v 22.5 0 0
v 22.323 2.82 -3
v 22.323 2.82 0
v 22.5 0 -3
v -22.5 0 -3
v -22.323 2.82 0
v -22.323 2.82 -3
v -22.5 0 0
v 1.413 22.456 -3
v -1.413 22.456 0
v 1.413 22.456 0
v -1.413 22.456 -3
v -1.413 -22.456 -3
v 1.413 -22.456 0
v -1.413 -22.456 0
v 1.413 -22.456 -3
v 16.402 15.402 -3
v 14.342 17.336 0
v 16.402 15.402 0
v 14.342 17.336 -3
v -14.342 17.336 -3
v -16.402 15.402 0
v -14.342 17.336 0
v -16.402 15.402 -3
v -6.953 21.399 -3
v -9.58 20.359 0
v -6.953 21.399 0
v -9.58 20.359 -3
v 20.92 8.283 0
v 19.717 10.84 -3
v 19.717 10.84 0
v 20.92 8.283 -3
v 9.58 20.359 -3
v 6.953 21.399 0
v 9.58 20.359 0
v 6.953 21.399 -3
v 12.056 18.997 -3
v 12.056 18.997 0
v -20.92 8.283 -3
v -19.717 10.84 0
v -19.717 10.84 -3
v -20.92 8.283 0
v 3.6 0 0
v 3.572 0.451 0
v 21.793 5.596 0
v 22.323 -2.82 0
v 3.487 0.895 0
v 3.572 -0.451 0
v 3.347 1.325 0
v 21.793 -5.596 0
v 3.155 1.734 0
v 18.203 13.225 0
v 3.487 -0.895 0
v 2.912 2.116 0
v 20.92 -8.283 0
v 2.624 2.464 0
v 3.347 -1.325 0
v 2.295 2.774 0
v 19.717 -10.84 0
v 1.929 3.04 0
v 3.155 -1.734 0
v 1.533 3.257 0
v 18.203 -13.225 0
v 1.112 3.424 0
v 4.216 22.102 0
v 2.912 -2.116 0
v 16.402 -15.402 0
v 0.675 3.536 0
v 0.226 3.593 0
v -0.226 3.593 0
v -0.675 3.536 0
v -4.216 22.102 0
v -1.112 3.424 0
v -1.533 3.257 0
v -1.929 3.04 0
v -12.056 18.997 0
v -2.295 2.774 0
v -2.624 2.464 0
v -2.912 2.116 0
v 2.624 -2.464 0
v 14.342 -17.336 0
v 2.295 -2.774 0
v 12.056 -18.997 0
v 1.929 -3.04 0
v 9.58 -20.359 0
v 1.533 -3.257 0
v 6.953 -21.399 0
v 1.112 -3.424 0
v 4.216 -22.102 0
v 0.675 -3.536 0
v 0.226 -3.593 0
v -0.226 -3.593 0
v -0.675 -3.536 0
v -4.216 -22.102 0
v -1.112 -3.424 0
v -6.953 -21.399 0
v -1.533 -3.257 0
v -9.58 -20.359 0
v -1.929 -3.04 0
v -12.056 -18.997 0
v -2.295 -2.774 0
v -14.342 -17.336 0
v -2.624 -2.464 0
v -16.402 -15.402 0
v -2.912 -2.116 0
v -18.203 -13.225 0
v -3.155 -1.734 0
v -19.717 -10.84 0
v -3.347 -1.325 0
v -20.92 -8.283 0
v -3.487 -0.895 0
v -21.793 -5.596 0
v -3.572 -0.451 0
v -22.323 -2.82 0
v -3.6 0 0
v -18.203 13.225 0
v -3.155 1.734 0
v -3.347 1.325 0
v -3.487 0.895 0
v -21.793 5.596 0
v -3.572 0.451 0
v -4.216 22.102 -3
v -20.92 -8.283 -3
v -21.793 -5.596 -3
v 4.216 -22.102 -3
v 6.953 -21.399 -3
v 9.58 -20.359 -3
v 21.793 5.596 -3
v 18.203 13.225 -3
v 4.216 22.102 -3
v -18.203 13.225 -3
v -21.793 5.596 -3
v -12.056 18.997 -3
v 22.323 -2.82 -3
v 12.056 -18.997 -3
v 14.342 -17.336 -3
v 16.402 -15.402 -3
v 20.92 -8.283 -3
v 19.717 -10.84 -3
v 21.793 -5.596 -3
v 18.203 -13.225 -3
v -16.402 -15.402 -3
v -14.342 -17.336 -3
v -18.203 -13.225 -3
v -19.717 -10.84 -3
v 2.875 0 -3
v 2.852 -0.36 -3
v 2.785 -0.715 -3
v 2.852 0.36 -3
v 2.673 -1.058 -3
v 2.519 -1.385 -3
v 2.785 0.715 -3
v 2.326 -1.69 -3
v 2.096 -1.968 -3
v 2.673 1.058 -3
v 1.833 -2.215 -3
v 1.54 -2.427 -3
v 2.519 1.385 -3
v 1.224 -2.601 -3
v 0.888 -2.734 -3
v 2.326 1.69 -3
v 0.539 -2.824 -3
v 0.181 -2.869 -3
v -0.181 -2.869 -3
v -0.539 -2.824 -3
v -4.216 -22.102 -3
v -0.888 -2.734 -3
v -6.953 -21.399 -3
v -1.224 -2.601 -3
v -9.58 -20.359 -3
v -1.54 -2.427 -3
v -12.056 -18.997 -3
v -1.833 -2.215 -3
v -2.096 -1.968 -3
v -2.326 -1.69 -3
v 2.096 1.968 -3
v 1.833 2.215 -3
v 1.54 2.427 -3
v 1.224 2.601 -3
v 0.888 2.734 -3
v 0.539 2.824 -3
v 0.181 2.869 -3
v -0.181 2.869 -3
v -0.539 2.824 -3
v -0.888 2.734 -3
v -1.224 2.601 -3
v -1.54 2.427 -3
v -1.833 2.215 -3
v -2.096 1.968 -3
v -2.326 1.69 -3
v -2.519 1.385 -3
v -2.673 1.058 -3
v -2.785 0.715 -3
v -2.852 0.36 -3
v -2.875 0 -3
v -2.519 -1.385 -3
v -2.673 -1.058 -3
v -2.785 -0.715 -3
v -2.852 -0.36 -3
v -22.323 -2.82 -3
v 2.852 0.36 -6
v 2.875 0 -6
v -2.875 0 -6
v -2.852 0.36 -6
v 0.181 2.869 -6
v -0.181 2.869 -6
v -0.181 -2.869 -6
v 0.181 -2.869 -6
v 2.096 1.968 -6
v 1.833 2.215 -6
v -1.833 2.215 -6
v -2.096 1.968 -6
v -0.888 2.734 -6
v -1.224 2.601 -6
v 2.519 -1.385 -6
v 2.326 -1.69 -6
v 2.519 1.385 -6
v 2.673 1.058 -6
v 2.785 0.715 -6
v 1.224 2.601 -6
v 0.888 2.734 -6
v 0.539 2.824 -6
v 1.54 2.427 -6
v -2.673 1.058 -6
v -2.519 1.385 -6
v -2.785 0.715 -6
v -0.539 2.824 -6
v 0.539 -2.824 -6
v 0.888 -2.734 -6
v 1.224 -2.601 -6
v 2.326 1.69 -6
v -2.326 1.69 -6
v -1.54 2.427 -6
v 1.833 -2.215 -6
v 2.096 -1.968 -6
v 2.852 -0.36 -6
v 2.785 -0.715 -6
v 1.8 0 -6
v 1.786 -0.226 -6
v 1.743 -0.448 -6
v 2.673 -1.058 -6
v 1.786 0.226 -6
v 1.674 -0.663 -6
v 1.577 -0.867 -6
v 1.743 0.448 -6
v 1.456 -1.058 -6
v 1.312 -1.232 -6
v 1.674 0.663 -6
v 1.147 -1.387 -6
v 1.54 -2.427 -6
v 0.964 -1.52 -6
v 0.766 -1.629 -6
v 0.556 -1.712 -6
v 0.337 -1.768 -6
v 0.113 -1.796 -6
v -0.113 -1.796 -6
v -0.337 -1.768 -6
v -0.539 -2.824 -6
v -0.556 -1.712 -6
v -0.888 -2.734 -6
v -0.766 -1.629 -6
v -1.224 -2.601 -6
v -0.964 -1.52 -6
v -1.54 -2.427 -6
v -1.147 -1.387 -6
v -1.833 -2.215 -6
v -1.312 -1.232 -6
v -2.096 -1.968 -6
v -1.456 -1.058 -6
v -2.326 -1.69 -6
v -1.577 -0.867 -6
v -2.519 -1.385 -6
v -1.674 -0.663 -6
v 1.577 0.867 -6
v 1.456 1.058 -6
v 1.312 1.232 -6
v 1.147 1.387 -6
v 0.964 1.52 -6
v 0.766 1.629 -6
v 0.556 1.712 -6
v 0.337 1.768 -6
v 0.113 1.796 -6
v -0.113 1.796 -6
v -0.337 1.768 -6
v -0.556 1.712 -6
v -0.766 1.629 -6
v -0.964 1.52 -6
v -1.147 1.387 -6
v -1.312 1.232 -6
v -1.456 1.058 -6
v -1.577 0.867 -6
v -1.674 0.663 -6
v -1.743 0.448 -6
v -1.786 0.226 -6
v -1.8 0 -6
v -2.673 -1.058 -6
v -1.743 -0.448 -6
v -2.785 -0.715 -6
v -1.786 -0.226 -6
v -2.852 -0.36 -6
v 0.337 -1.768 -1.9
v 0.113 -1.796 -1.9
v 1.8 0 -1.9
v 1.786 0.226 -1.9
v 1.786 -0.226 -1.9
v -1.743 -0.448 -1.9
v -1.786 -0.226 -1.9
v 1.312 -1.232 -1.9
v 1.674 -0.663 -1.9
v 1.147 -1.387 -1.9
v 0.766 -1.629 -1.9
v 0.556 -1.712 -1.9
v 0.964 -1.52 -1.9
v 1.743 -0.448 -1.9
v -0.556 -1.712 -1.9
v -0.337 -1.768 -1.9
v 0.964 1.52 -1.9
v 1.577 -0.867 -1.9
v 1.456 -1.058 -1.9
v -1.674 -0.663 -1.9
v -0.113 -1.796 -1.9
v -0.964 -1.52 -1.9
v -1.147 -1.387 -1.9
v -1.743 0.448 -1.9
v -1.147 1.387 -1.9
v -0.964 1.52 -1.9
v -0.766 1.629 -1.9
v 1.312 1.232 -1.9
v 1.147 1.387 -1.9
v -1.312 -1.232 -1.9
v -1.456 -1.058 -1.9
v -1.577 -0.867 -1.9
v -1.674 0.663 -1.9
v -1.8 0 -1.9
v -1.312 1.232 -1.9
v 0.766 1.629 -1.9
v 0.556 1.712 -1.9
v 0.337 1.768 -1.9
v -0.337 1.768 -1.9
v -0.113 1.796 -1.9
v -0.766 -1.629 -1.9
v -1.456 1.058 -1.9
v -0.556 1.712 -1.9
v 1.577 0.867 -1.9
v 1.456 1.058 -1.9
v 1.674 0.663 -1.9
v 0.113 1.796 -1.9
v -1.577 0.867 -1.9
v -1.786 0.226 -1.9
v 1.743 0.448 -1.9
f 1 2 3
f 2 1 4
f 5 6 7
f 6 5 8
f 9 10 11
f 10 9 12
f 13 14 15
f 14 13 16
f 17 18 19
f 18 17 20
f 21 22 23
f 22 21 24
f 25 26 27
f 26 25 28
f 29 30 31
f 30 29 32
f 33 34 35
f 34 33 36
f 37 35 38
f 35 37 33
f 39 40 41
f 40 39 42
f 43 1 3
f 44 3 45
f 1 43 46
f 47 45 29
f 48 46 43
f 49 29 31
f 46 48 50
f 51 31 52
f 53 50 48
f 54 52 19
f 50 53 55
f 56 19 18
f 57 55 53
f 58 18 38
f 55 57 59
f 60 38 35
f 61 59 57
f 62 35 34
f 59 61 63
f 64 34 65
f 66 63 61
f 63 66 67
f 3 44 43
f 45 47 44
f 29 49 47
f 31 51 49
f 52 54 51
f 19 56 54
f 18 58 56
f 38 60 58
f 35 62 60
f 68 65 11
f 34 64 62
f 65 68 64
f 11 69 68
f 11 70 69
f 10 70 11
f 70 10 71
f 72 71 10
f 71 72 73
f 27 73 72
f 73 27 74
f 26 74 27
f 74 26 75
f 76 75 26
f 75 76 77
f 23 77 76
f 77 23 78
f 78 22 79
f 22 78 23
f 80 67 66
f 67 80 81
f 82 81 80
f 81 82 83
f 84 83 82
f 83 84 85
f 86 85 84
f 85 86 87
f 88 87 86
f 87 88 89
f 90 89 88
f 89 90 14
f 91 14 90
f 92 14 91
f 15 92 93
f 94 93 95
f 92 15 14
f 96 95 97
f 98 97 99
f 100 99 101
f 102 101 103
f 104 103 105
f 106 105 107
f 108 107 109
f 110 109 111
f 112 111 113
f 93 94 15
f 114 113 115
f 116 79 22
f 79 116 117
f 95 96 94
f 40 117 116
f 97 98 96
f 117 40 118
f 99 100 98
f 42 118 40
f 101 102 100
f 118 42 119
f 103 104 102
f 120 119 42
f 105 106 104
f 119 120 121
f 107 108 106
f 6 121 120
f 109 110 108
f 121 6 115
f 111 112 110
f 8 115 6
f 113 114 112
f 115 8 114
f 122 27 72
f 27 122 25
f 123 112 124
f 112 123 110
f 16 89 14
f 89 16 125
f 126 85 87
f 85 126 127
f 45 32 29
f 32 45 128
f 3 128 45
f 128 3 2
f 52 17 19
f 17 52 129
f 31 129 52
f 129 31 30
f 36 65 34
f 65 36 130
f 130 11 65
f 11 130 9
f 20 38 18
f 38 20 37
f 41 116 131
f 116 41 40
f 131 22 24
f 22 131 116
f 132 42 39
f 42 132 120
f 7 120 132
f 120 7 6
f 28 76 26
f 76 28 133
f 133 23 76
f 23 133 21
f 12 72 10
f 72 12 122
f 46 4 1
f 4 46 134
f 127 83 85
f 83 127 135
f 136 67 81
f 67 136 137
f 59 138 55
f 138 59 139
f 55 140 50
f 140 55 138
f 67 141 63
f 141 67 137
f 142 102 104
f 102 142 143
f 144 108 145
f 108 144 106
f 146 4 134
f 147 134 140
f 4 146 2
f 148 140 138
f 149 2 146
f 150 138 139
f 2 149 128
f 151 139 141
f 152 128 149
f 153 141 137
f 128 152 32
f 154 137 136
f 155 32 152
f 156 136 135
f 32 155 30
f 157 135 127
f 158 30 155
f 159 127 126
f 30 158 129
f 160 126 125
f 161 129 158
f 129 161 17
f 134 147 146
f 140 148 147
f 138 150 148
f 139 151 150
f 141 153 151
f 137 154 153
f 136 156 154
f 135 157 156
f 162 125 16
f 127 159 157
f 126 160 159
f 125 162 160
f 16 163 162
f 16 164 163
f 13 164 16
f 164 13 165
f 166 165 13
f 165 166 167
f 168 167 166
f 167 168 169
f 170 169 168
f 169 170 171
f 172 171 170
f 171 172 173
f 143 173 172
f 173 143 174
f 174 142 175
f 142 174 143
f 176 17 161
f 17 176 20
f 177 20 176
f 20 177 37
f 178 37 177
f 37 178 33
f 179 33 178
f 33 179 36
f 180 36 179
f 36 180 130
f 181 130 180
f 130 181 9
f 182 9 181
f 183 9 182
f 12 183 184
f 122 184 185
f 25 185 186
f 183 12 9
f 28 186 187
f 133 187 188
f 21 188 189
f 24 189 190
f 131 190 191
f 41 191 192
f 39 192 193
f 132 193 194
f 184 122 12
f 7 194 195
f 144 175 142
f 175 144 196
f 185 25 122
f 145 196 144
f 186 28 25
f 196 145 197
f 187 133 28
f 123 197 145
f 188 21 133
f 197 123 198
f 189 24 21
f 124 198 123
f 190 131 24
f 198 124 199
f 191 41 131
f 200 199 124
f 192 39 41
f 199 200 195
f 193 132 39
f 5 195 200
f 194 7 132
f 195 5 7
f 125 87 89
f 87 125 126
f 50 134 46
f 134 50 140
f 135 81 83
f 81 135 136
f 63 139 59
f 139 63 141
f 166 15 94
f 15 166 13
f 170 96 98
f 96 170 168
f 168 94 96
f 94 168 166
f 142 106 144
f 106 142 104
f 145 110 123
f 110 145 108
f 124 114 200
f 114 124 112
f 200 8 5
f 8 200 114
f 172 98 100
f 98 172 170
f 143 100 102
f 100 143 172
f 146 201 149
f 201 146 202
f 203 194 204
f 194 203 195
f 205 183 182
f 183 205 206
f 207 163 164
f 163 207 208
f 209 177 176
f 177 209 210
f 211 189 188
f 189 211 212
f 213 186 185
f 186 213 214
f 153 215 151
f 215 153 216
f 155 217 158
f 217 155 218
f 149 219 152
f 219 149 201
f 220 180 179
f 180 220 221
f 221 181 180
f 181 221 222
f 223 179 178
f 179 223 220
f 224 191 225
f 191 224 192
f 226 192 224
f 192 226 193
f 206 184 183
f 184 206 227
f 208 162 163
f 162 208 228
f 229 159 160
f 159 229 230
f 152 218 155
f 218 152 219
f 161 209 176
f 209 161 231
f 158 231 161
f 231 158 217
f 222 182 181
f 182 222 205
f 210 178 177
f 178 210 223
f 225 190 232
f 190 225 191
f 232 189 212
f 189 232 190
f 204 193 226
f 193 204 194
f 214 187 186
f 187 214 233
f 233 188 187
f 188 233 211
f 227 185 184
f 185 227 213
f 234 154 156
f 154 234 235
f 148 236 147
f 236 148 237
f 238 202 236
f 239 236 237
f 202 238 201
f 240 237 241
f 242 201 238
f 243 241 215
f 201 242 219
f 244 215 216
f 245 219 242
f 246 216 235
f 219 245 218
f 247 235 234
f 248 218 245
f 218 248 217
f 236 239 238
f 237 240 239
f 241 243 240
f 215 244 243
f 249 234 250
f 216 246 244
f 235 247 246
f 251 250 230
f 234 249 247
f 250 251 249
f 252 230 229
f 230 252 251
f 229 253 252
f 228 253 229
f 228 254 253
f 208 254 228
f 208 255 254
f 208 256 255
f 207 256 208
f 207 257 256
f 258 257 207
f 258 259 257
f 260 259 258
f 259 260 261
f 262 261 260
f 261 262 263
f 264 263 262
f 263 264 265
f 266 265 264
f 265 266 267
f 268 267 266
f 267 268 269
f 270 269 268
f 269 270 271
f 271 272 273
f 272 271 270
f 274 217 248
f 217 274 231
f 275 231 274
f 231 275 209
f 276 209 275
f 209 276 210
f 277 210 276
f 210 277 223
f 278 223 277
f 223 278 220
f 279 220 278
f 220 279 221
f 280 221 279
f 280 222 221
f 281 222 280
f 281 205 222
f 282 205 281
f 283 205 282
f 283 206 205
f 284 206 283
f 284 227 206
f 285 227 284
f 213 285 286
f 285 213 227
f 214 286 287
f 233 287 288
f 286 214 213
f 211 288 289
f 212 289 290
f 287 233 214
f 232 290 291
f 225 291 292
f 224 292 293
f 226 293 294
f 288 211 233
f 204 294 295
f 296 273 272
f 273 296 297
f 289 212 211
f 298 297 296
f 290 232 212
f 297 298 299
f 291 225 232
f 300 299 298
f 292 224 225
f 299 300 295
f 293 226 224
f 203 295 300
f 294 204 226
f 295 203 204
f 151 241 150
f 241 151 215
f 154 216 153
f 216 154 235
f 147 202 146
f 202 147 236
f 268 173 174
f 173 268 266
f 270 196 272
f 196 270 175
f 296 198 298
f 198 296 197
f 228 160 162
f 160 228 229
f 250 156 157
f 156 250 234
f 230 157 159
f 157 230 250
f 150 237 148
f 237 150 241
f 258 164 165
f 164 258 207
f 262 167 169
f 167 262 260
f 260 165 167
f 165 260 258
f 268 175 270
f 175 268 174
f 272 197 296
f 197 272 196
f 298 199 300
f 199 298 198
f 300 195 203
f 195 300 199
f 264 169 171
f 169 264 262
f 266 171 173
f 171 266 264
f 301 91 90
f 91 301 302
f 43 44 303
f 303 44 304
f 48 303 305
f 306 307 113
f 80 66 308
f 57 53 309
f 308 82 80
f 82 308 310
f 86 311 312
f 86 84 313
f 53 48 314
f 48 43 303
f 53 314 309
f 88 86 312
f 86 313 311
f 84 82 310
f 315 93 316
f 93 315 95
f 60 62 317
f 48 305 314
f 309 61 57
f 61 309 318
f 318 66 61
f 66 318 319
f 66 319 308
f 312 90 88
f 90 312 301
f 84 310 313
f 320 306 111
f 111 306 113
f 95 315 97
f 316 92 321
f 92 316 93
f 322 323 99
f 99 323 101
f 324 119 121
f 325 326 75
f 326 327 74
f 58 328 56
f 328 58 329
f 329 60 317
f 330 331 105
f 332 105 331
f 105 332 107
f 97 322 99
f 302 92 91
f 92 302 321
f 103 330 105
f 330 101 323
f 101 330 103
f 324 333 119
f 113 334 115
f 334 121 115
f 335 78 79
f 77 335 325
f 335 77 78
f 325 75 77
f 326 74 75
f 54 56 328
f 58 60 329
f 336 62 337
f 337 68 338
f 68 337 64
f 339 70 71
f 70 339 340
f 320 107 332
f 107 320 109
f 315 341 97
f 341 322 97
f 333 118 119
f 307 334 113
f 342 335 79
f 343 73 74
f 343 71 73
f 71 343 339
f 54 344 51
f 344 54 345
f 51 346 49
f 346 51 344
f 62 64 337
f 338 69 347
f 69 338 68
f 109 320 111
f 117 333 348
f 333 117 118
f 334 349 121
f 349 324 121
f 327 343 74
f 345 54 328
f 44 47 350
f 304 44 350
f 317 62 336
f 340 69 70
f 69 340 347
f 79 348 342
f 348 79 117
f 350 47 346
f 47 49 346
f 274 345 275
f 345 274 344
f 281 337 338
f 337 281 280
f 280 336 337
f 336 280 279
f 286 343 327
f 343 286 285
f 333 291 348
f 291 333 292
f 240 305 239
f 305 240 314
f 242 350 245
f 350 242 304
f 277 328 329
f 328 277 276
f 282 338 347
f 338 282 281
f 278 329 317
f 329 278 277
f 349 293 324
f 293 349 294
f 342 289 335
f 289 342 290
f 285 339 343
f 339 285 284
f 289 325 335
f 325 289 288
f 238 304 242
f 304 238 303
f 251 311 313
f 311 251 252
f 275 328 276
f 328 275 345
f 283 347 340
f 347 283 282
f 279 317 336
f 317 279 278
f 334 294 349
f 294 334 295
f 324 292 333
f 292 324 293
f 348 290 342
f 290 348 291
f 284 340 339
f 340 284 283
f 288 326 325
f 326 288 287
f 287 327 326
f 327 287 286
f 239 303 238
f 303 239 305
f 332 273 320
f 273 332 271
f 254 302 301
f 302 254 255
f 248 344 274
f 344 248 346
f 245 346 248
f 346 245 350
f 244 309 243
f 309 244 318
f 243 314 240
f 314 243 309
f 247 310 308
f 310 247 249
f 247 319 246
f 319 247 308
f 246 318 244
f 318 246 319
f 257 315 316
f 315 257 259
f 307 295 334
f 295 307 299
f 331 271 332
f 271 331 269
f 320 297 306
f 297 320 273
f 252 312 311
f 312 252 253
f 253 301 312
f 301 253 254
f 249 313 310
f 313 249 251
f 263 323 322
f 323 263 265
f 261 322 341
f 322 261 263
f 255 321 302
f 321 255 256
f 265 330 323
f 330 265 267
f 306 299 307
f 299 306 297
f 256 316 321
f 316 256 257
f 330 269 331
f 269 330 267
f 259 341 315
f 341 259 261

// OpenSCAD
$fn = 50;


difference() {
	union() {
		translate(v = [0, 0, -3.0000000000]) {
			cylinder(h = 3, r = 22.5000000000);
		}
		translate(v = [0, 0, -6.0000000000]) {
			cylinder(h = 6, r = 2.8750000000);
		}
	}
	union() {
		translate(v = [0, 0, 0]) {
			rotate(a = [0, 0, 0]) {
				difference() {
					union() {
						translate(v = [0, 0, -6.0000000000]) {
							cylinder(h = 6, r = 1.5000000000);
						}
						translate(v = [0, 0, -1.9000000000]) {
							cylinder(h = 1.9000000000, r1 = 1.8000000000, r2 = 3.6000000000);
						}
						translate(v = [0, 0, -6.0000000000]) {
							cylinder(h = 6, r = 1.8000000000);
						}
						translate(v = [0, 0, -6.0000000000]) {
							cylinder(h = 6, r = 1.5000000000);
						}
					}
					union();
				}
			}
		}
	}
}
